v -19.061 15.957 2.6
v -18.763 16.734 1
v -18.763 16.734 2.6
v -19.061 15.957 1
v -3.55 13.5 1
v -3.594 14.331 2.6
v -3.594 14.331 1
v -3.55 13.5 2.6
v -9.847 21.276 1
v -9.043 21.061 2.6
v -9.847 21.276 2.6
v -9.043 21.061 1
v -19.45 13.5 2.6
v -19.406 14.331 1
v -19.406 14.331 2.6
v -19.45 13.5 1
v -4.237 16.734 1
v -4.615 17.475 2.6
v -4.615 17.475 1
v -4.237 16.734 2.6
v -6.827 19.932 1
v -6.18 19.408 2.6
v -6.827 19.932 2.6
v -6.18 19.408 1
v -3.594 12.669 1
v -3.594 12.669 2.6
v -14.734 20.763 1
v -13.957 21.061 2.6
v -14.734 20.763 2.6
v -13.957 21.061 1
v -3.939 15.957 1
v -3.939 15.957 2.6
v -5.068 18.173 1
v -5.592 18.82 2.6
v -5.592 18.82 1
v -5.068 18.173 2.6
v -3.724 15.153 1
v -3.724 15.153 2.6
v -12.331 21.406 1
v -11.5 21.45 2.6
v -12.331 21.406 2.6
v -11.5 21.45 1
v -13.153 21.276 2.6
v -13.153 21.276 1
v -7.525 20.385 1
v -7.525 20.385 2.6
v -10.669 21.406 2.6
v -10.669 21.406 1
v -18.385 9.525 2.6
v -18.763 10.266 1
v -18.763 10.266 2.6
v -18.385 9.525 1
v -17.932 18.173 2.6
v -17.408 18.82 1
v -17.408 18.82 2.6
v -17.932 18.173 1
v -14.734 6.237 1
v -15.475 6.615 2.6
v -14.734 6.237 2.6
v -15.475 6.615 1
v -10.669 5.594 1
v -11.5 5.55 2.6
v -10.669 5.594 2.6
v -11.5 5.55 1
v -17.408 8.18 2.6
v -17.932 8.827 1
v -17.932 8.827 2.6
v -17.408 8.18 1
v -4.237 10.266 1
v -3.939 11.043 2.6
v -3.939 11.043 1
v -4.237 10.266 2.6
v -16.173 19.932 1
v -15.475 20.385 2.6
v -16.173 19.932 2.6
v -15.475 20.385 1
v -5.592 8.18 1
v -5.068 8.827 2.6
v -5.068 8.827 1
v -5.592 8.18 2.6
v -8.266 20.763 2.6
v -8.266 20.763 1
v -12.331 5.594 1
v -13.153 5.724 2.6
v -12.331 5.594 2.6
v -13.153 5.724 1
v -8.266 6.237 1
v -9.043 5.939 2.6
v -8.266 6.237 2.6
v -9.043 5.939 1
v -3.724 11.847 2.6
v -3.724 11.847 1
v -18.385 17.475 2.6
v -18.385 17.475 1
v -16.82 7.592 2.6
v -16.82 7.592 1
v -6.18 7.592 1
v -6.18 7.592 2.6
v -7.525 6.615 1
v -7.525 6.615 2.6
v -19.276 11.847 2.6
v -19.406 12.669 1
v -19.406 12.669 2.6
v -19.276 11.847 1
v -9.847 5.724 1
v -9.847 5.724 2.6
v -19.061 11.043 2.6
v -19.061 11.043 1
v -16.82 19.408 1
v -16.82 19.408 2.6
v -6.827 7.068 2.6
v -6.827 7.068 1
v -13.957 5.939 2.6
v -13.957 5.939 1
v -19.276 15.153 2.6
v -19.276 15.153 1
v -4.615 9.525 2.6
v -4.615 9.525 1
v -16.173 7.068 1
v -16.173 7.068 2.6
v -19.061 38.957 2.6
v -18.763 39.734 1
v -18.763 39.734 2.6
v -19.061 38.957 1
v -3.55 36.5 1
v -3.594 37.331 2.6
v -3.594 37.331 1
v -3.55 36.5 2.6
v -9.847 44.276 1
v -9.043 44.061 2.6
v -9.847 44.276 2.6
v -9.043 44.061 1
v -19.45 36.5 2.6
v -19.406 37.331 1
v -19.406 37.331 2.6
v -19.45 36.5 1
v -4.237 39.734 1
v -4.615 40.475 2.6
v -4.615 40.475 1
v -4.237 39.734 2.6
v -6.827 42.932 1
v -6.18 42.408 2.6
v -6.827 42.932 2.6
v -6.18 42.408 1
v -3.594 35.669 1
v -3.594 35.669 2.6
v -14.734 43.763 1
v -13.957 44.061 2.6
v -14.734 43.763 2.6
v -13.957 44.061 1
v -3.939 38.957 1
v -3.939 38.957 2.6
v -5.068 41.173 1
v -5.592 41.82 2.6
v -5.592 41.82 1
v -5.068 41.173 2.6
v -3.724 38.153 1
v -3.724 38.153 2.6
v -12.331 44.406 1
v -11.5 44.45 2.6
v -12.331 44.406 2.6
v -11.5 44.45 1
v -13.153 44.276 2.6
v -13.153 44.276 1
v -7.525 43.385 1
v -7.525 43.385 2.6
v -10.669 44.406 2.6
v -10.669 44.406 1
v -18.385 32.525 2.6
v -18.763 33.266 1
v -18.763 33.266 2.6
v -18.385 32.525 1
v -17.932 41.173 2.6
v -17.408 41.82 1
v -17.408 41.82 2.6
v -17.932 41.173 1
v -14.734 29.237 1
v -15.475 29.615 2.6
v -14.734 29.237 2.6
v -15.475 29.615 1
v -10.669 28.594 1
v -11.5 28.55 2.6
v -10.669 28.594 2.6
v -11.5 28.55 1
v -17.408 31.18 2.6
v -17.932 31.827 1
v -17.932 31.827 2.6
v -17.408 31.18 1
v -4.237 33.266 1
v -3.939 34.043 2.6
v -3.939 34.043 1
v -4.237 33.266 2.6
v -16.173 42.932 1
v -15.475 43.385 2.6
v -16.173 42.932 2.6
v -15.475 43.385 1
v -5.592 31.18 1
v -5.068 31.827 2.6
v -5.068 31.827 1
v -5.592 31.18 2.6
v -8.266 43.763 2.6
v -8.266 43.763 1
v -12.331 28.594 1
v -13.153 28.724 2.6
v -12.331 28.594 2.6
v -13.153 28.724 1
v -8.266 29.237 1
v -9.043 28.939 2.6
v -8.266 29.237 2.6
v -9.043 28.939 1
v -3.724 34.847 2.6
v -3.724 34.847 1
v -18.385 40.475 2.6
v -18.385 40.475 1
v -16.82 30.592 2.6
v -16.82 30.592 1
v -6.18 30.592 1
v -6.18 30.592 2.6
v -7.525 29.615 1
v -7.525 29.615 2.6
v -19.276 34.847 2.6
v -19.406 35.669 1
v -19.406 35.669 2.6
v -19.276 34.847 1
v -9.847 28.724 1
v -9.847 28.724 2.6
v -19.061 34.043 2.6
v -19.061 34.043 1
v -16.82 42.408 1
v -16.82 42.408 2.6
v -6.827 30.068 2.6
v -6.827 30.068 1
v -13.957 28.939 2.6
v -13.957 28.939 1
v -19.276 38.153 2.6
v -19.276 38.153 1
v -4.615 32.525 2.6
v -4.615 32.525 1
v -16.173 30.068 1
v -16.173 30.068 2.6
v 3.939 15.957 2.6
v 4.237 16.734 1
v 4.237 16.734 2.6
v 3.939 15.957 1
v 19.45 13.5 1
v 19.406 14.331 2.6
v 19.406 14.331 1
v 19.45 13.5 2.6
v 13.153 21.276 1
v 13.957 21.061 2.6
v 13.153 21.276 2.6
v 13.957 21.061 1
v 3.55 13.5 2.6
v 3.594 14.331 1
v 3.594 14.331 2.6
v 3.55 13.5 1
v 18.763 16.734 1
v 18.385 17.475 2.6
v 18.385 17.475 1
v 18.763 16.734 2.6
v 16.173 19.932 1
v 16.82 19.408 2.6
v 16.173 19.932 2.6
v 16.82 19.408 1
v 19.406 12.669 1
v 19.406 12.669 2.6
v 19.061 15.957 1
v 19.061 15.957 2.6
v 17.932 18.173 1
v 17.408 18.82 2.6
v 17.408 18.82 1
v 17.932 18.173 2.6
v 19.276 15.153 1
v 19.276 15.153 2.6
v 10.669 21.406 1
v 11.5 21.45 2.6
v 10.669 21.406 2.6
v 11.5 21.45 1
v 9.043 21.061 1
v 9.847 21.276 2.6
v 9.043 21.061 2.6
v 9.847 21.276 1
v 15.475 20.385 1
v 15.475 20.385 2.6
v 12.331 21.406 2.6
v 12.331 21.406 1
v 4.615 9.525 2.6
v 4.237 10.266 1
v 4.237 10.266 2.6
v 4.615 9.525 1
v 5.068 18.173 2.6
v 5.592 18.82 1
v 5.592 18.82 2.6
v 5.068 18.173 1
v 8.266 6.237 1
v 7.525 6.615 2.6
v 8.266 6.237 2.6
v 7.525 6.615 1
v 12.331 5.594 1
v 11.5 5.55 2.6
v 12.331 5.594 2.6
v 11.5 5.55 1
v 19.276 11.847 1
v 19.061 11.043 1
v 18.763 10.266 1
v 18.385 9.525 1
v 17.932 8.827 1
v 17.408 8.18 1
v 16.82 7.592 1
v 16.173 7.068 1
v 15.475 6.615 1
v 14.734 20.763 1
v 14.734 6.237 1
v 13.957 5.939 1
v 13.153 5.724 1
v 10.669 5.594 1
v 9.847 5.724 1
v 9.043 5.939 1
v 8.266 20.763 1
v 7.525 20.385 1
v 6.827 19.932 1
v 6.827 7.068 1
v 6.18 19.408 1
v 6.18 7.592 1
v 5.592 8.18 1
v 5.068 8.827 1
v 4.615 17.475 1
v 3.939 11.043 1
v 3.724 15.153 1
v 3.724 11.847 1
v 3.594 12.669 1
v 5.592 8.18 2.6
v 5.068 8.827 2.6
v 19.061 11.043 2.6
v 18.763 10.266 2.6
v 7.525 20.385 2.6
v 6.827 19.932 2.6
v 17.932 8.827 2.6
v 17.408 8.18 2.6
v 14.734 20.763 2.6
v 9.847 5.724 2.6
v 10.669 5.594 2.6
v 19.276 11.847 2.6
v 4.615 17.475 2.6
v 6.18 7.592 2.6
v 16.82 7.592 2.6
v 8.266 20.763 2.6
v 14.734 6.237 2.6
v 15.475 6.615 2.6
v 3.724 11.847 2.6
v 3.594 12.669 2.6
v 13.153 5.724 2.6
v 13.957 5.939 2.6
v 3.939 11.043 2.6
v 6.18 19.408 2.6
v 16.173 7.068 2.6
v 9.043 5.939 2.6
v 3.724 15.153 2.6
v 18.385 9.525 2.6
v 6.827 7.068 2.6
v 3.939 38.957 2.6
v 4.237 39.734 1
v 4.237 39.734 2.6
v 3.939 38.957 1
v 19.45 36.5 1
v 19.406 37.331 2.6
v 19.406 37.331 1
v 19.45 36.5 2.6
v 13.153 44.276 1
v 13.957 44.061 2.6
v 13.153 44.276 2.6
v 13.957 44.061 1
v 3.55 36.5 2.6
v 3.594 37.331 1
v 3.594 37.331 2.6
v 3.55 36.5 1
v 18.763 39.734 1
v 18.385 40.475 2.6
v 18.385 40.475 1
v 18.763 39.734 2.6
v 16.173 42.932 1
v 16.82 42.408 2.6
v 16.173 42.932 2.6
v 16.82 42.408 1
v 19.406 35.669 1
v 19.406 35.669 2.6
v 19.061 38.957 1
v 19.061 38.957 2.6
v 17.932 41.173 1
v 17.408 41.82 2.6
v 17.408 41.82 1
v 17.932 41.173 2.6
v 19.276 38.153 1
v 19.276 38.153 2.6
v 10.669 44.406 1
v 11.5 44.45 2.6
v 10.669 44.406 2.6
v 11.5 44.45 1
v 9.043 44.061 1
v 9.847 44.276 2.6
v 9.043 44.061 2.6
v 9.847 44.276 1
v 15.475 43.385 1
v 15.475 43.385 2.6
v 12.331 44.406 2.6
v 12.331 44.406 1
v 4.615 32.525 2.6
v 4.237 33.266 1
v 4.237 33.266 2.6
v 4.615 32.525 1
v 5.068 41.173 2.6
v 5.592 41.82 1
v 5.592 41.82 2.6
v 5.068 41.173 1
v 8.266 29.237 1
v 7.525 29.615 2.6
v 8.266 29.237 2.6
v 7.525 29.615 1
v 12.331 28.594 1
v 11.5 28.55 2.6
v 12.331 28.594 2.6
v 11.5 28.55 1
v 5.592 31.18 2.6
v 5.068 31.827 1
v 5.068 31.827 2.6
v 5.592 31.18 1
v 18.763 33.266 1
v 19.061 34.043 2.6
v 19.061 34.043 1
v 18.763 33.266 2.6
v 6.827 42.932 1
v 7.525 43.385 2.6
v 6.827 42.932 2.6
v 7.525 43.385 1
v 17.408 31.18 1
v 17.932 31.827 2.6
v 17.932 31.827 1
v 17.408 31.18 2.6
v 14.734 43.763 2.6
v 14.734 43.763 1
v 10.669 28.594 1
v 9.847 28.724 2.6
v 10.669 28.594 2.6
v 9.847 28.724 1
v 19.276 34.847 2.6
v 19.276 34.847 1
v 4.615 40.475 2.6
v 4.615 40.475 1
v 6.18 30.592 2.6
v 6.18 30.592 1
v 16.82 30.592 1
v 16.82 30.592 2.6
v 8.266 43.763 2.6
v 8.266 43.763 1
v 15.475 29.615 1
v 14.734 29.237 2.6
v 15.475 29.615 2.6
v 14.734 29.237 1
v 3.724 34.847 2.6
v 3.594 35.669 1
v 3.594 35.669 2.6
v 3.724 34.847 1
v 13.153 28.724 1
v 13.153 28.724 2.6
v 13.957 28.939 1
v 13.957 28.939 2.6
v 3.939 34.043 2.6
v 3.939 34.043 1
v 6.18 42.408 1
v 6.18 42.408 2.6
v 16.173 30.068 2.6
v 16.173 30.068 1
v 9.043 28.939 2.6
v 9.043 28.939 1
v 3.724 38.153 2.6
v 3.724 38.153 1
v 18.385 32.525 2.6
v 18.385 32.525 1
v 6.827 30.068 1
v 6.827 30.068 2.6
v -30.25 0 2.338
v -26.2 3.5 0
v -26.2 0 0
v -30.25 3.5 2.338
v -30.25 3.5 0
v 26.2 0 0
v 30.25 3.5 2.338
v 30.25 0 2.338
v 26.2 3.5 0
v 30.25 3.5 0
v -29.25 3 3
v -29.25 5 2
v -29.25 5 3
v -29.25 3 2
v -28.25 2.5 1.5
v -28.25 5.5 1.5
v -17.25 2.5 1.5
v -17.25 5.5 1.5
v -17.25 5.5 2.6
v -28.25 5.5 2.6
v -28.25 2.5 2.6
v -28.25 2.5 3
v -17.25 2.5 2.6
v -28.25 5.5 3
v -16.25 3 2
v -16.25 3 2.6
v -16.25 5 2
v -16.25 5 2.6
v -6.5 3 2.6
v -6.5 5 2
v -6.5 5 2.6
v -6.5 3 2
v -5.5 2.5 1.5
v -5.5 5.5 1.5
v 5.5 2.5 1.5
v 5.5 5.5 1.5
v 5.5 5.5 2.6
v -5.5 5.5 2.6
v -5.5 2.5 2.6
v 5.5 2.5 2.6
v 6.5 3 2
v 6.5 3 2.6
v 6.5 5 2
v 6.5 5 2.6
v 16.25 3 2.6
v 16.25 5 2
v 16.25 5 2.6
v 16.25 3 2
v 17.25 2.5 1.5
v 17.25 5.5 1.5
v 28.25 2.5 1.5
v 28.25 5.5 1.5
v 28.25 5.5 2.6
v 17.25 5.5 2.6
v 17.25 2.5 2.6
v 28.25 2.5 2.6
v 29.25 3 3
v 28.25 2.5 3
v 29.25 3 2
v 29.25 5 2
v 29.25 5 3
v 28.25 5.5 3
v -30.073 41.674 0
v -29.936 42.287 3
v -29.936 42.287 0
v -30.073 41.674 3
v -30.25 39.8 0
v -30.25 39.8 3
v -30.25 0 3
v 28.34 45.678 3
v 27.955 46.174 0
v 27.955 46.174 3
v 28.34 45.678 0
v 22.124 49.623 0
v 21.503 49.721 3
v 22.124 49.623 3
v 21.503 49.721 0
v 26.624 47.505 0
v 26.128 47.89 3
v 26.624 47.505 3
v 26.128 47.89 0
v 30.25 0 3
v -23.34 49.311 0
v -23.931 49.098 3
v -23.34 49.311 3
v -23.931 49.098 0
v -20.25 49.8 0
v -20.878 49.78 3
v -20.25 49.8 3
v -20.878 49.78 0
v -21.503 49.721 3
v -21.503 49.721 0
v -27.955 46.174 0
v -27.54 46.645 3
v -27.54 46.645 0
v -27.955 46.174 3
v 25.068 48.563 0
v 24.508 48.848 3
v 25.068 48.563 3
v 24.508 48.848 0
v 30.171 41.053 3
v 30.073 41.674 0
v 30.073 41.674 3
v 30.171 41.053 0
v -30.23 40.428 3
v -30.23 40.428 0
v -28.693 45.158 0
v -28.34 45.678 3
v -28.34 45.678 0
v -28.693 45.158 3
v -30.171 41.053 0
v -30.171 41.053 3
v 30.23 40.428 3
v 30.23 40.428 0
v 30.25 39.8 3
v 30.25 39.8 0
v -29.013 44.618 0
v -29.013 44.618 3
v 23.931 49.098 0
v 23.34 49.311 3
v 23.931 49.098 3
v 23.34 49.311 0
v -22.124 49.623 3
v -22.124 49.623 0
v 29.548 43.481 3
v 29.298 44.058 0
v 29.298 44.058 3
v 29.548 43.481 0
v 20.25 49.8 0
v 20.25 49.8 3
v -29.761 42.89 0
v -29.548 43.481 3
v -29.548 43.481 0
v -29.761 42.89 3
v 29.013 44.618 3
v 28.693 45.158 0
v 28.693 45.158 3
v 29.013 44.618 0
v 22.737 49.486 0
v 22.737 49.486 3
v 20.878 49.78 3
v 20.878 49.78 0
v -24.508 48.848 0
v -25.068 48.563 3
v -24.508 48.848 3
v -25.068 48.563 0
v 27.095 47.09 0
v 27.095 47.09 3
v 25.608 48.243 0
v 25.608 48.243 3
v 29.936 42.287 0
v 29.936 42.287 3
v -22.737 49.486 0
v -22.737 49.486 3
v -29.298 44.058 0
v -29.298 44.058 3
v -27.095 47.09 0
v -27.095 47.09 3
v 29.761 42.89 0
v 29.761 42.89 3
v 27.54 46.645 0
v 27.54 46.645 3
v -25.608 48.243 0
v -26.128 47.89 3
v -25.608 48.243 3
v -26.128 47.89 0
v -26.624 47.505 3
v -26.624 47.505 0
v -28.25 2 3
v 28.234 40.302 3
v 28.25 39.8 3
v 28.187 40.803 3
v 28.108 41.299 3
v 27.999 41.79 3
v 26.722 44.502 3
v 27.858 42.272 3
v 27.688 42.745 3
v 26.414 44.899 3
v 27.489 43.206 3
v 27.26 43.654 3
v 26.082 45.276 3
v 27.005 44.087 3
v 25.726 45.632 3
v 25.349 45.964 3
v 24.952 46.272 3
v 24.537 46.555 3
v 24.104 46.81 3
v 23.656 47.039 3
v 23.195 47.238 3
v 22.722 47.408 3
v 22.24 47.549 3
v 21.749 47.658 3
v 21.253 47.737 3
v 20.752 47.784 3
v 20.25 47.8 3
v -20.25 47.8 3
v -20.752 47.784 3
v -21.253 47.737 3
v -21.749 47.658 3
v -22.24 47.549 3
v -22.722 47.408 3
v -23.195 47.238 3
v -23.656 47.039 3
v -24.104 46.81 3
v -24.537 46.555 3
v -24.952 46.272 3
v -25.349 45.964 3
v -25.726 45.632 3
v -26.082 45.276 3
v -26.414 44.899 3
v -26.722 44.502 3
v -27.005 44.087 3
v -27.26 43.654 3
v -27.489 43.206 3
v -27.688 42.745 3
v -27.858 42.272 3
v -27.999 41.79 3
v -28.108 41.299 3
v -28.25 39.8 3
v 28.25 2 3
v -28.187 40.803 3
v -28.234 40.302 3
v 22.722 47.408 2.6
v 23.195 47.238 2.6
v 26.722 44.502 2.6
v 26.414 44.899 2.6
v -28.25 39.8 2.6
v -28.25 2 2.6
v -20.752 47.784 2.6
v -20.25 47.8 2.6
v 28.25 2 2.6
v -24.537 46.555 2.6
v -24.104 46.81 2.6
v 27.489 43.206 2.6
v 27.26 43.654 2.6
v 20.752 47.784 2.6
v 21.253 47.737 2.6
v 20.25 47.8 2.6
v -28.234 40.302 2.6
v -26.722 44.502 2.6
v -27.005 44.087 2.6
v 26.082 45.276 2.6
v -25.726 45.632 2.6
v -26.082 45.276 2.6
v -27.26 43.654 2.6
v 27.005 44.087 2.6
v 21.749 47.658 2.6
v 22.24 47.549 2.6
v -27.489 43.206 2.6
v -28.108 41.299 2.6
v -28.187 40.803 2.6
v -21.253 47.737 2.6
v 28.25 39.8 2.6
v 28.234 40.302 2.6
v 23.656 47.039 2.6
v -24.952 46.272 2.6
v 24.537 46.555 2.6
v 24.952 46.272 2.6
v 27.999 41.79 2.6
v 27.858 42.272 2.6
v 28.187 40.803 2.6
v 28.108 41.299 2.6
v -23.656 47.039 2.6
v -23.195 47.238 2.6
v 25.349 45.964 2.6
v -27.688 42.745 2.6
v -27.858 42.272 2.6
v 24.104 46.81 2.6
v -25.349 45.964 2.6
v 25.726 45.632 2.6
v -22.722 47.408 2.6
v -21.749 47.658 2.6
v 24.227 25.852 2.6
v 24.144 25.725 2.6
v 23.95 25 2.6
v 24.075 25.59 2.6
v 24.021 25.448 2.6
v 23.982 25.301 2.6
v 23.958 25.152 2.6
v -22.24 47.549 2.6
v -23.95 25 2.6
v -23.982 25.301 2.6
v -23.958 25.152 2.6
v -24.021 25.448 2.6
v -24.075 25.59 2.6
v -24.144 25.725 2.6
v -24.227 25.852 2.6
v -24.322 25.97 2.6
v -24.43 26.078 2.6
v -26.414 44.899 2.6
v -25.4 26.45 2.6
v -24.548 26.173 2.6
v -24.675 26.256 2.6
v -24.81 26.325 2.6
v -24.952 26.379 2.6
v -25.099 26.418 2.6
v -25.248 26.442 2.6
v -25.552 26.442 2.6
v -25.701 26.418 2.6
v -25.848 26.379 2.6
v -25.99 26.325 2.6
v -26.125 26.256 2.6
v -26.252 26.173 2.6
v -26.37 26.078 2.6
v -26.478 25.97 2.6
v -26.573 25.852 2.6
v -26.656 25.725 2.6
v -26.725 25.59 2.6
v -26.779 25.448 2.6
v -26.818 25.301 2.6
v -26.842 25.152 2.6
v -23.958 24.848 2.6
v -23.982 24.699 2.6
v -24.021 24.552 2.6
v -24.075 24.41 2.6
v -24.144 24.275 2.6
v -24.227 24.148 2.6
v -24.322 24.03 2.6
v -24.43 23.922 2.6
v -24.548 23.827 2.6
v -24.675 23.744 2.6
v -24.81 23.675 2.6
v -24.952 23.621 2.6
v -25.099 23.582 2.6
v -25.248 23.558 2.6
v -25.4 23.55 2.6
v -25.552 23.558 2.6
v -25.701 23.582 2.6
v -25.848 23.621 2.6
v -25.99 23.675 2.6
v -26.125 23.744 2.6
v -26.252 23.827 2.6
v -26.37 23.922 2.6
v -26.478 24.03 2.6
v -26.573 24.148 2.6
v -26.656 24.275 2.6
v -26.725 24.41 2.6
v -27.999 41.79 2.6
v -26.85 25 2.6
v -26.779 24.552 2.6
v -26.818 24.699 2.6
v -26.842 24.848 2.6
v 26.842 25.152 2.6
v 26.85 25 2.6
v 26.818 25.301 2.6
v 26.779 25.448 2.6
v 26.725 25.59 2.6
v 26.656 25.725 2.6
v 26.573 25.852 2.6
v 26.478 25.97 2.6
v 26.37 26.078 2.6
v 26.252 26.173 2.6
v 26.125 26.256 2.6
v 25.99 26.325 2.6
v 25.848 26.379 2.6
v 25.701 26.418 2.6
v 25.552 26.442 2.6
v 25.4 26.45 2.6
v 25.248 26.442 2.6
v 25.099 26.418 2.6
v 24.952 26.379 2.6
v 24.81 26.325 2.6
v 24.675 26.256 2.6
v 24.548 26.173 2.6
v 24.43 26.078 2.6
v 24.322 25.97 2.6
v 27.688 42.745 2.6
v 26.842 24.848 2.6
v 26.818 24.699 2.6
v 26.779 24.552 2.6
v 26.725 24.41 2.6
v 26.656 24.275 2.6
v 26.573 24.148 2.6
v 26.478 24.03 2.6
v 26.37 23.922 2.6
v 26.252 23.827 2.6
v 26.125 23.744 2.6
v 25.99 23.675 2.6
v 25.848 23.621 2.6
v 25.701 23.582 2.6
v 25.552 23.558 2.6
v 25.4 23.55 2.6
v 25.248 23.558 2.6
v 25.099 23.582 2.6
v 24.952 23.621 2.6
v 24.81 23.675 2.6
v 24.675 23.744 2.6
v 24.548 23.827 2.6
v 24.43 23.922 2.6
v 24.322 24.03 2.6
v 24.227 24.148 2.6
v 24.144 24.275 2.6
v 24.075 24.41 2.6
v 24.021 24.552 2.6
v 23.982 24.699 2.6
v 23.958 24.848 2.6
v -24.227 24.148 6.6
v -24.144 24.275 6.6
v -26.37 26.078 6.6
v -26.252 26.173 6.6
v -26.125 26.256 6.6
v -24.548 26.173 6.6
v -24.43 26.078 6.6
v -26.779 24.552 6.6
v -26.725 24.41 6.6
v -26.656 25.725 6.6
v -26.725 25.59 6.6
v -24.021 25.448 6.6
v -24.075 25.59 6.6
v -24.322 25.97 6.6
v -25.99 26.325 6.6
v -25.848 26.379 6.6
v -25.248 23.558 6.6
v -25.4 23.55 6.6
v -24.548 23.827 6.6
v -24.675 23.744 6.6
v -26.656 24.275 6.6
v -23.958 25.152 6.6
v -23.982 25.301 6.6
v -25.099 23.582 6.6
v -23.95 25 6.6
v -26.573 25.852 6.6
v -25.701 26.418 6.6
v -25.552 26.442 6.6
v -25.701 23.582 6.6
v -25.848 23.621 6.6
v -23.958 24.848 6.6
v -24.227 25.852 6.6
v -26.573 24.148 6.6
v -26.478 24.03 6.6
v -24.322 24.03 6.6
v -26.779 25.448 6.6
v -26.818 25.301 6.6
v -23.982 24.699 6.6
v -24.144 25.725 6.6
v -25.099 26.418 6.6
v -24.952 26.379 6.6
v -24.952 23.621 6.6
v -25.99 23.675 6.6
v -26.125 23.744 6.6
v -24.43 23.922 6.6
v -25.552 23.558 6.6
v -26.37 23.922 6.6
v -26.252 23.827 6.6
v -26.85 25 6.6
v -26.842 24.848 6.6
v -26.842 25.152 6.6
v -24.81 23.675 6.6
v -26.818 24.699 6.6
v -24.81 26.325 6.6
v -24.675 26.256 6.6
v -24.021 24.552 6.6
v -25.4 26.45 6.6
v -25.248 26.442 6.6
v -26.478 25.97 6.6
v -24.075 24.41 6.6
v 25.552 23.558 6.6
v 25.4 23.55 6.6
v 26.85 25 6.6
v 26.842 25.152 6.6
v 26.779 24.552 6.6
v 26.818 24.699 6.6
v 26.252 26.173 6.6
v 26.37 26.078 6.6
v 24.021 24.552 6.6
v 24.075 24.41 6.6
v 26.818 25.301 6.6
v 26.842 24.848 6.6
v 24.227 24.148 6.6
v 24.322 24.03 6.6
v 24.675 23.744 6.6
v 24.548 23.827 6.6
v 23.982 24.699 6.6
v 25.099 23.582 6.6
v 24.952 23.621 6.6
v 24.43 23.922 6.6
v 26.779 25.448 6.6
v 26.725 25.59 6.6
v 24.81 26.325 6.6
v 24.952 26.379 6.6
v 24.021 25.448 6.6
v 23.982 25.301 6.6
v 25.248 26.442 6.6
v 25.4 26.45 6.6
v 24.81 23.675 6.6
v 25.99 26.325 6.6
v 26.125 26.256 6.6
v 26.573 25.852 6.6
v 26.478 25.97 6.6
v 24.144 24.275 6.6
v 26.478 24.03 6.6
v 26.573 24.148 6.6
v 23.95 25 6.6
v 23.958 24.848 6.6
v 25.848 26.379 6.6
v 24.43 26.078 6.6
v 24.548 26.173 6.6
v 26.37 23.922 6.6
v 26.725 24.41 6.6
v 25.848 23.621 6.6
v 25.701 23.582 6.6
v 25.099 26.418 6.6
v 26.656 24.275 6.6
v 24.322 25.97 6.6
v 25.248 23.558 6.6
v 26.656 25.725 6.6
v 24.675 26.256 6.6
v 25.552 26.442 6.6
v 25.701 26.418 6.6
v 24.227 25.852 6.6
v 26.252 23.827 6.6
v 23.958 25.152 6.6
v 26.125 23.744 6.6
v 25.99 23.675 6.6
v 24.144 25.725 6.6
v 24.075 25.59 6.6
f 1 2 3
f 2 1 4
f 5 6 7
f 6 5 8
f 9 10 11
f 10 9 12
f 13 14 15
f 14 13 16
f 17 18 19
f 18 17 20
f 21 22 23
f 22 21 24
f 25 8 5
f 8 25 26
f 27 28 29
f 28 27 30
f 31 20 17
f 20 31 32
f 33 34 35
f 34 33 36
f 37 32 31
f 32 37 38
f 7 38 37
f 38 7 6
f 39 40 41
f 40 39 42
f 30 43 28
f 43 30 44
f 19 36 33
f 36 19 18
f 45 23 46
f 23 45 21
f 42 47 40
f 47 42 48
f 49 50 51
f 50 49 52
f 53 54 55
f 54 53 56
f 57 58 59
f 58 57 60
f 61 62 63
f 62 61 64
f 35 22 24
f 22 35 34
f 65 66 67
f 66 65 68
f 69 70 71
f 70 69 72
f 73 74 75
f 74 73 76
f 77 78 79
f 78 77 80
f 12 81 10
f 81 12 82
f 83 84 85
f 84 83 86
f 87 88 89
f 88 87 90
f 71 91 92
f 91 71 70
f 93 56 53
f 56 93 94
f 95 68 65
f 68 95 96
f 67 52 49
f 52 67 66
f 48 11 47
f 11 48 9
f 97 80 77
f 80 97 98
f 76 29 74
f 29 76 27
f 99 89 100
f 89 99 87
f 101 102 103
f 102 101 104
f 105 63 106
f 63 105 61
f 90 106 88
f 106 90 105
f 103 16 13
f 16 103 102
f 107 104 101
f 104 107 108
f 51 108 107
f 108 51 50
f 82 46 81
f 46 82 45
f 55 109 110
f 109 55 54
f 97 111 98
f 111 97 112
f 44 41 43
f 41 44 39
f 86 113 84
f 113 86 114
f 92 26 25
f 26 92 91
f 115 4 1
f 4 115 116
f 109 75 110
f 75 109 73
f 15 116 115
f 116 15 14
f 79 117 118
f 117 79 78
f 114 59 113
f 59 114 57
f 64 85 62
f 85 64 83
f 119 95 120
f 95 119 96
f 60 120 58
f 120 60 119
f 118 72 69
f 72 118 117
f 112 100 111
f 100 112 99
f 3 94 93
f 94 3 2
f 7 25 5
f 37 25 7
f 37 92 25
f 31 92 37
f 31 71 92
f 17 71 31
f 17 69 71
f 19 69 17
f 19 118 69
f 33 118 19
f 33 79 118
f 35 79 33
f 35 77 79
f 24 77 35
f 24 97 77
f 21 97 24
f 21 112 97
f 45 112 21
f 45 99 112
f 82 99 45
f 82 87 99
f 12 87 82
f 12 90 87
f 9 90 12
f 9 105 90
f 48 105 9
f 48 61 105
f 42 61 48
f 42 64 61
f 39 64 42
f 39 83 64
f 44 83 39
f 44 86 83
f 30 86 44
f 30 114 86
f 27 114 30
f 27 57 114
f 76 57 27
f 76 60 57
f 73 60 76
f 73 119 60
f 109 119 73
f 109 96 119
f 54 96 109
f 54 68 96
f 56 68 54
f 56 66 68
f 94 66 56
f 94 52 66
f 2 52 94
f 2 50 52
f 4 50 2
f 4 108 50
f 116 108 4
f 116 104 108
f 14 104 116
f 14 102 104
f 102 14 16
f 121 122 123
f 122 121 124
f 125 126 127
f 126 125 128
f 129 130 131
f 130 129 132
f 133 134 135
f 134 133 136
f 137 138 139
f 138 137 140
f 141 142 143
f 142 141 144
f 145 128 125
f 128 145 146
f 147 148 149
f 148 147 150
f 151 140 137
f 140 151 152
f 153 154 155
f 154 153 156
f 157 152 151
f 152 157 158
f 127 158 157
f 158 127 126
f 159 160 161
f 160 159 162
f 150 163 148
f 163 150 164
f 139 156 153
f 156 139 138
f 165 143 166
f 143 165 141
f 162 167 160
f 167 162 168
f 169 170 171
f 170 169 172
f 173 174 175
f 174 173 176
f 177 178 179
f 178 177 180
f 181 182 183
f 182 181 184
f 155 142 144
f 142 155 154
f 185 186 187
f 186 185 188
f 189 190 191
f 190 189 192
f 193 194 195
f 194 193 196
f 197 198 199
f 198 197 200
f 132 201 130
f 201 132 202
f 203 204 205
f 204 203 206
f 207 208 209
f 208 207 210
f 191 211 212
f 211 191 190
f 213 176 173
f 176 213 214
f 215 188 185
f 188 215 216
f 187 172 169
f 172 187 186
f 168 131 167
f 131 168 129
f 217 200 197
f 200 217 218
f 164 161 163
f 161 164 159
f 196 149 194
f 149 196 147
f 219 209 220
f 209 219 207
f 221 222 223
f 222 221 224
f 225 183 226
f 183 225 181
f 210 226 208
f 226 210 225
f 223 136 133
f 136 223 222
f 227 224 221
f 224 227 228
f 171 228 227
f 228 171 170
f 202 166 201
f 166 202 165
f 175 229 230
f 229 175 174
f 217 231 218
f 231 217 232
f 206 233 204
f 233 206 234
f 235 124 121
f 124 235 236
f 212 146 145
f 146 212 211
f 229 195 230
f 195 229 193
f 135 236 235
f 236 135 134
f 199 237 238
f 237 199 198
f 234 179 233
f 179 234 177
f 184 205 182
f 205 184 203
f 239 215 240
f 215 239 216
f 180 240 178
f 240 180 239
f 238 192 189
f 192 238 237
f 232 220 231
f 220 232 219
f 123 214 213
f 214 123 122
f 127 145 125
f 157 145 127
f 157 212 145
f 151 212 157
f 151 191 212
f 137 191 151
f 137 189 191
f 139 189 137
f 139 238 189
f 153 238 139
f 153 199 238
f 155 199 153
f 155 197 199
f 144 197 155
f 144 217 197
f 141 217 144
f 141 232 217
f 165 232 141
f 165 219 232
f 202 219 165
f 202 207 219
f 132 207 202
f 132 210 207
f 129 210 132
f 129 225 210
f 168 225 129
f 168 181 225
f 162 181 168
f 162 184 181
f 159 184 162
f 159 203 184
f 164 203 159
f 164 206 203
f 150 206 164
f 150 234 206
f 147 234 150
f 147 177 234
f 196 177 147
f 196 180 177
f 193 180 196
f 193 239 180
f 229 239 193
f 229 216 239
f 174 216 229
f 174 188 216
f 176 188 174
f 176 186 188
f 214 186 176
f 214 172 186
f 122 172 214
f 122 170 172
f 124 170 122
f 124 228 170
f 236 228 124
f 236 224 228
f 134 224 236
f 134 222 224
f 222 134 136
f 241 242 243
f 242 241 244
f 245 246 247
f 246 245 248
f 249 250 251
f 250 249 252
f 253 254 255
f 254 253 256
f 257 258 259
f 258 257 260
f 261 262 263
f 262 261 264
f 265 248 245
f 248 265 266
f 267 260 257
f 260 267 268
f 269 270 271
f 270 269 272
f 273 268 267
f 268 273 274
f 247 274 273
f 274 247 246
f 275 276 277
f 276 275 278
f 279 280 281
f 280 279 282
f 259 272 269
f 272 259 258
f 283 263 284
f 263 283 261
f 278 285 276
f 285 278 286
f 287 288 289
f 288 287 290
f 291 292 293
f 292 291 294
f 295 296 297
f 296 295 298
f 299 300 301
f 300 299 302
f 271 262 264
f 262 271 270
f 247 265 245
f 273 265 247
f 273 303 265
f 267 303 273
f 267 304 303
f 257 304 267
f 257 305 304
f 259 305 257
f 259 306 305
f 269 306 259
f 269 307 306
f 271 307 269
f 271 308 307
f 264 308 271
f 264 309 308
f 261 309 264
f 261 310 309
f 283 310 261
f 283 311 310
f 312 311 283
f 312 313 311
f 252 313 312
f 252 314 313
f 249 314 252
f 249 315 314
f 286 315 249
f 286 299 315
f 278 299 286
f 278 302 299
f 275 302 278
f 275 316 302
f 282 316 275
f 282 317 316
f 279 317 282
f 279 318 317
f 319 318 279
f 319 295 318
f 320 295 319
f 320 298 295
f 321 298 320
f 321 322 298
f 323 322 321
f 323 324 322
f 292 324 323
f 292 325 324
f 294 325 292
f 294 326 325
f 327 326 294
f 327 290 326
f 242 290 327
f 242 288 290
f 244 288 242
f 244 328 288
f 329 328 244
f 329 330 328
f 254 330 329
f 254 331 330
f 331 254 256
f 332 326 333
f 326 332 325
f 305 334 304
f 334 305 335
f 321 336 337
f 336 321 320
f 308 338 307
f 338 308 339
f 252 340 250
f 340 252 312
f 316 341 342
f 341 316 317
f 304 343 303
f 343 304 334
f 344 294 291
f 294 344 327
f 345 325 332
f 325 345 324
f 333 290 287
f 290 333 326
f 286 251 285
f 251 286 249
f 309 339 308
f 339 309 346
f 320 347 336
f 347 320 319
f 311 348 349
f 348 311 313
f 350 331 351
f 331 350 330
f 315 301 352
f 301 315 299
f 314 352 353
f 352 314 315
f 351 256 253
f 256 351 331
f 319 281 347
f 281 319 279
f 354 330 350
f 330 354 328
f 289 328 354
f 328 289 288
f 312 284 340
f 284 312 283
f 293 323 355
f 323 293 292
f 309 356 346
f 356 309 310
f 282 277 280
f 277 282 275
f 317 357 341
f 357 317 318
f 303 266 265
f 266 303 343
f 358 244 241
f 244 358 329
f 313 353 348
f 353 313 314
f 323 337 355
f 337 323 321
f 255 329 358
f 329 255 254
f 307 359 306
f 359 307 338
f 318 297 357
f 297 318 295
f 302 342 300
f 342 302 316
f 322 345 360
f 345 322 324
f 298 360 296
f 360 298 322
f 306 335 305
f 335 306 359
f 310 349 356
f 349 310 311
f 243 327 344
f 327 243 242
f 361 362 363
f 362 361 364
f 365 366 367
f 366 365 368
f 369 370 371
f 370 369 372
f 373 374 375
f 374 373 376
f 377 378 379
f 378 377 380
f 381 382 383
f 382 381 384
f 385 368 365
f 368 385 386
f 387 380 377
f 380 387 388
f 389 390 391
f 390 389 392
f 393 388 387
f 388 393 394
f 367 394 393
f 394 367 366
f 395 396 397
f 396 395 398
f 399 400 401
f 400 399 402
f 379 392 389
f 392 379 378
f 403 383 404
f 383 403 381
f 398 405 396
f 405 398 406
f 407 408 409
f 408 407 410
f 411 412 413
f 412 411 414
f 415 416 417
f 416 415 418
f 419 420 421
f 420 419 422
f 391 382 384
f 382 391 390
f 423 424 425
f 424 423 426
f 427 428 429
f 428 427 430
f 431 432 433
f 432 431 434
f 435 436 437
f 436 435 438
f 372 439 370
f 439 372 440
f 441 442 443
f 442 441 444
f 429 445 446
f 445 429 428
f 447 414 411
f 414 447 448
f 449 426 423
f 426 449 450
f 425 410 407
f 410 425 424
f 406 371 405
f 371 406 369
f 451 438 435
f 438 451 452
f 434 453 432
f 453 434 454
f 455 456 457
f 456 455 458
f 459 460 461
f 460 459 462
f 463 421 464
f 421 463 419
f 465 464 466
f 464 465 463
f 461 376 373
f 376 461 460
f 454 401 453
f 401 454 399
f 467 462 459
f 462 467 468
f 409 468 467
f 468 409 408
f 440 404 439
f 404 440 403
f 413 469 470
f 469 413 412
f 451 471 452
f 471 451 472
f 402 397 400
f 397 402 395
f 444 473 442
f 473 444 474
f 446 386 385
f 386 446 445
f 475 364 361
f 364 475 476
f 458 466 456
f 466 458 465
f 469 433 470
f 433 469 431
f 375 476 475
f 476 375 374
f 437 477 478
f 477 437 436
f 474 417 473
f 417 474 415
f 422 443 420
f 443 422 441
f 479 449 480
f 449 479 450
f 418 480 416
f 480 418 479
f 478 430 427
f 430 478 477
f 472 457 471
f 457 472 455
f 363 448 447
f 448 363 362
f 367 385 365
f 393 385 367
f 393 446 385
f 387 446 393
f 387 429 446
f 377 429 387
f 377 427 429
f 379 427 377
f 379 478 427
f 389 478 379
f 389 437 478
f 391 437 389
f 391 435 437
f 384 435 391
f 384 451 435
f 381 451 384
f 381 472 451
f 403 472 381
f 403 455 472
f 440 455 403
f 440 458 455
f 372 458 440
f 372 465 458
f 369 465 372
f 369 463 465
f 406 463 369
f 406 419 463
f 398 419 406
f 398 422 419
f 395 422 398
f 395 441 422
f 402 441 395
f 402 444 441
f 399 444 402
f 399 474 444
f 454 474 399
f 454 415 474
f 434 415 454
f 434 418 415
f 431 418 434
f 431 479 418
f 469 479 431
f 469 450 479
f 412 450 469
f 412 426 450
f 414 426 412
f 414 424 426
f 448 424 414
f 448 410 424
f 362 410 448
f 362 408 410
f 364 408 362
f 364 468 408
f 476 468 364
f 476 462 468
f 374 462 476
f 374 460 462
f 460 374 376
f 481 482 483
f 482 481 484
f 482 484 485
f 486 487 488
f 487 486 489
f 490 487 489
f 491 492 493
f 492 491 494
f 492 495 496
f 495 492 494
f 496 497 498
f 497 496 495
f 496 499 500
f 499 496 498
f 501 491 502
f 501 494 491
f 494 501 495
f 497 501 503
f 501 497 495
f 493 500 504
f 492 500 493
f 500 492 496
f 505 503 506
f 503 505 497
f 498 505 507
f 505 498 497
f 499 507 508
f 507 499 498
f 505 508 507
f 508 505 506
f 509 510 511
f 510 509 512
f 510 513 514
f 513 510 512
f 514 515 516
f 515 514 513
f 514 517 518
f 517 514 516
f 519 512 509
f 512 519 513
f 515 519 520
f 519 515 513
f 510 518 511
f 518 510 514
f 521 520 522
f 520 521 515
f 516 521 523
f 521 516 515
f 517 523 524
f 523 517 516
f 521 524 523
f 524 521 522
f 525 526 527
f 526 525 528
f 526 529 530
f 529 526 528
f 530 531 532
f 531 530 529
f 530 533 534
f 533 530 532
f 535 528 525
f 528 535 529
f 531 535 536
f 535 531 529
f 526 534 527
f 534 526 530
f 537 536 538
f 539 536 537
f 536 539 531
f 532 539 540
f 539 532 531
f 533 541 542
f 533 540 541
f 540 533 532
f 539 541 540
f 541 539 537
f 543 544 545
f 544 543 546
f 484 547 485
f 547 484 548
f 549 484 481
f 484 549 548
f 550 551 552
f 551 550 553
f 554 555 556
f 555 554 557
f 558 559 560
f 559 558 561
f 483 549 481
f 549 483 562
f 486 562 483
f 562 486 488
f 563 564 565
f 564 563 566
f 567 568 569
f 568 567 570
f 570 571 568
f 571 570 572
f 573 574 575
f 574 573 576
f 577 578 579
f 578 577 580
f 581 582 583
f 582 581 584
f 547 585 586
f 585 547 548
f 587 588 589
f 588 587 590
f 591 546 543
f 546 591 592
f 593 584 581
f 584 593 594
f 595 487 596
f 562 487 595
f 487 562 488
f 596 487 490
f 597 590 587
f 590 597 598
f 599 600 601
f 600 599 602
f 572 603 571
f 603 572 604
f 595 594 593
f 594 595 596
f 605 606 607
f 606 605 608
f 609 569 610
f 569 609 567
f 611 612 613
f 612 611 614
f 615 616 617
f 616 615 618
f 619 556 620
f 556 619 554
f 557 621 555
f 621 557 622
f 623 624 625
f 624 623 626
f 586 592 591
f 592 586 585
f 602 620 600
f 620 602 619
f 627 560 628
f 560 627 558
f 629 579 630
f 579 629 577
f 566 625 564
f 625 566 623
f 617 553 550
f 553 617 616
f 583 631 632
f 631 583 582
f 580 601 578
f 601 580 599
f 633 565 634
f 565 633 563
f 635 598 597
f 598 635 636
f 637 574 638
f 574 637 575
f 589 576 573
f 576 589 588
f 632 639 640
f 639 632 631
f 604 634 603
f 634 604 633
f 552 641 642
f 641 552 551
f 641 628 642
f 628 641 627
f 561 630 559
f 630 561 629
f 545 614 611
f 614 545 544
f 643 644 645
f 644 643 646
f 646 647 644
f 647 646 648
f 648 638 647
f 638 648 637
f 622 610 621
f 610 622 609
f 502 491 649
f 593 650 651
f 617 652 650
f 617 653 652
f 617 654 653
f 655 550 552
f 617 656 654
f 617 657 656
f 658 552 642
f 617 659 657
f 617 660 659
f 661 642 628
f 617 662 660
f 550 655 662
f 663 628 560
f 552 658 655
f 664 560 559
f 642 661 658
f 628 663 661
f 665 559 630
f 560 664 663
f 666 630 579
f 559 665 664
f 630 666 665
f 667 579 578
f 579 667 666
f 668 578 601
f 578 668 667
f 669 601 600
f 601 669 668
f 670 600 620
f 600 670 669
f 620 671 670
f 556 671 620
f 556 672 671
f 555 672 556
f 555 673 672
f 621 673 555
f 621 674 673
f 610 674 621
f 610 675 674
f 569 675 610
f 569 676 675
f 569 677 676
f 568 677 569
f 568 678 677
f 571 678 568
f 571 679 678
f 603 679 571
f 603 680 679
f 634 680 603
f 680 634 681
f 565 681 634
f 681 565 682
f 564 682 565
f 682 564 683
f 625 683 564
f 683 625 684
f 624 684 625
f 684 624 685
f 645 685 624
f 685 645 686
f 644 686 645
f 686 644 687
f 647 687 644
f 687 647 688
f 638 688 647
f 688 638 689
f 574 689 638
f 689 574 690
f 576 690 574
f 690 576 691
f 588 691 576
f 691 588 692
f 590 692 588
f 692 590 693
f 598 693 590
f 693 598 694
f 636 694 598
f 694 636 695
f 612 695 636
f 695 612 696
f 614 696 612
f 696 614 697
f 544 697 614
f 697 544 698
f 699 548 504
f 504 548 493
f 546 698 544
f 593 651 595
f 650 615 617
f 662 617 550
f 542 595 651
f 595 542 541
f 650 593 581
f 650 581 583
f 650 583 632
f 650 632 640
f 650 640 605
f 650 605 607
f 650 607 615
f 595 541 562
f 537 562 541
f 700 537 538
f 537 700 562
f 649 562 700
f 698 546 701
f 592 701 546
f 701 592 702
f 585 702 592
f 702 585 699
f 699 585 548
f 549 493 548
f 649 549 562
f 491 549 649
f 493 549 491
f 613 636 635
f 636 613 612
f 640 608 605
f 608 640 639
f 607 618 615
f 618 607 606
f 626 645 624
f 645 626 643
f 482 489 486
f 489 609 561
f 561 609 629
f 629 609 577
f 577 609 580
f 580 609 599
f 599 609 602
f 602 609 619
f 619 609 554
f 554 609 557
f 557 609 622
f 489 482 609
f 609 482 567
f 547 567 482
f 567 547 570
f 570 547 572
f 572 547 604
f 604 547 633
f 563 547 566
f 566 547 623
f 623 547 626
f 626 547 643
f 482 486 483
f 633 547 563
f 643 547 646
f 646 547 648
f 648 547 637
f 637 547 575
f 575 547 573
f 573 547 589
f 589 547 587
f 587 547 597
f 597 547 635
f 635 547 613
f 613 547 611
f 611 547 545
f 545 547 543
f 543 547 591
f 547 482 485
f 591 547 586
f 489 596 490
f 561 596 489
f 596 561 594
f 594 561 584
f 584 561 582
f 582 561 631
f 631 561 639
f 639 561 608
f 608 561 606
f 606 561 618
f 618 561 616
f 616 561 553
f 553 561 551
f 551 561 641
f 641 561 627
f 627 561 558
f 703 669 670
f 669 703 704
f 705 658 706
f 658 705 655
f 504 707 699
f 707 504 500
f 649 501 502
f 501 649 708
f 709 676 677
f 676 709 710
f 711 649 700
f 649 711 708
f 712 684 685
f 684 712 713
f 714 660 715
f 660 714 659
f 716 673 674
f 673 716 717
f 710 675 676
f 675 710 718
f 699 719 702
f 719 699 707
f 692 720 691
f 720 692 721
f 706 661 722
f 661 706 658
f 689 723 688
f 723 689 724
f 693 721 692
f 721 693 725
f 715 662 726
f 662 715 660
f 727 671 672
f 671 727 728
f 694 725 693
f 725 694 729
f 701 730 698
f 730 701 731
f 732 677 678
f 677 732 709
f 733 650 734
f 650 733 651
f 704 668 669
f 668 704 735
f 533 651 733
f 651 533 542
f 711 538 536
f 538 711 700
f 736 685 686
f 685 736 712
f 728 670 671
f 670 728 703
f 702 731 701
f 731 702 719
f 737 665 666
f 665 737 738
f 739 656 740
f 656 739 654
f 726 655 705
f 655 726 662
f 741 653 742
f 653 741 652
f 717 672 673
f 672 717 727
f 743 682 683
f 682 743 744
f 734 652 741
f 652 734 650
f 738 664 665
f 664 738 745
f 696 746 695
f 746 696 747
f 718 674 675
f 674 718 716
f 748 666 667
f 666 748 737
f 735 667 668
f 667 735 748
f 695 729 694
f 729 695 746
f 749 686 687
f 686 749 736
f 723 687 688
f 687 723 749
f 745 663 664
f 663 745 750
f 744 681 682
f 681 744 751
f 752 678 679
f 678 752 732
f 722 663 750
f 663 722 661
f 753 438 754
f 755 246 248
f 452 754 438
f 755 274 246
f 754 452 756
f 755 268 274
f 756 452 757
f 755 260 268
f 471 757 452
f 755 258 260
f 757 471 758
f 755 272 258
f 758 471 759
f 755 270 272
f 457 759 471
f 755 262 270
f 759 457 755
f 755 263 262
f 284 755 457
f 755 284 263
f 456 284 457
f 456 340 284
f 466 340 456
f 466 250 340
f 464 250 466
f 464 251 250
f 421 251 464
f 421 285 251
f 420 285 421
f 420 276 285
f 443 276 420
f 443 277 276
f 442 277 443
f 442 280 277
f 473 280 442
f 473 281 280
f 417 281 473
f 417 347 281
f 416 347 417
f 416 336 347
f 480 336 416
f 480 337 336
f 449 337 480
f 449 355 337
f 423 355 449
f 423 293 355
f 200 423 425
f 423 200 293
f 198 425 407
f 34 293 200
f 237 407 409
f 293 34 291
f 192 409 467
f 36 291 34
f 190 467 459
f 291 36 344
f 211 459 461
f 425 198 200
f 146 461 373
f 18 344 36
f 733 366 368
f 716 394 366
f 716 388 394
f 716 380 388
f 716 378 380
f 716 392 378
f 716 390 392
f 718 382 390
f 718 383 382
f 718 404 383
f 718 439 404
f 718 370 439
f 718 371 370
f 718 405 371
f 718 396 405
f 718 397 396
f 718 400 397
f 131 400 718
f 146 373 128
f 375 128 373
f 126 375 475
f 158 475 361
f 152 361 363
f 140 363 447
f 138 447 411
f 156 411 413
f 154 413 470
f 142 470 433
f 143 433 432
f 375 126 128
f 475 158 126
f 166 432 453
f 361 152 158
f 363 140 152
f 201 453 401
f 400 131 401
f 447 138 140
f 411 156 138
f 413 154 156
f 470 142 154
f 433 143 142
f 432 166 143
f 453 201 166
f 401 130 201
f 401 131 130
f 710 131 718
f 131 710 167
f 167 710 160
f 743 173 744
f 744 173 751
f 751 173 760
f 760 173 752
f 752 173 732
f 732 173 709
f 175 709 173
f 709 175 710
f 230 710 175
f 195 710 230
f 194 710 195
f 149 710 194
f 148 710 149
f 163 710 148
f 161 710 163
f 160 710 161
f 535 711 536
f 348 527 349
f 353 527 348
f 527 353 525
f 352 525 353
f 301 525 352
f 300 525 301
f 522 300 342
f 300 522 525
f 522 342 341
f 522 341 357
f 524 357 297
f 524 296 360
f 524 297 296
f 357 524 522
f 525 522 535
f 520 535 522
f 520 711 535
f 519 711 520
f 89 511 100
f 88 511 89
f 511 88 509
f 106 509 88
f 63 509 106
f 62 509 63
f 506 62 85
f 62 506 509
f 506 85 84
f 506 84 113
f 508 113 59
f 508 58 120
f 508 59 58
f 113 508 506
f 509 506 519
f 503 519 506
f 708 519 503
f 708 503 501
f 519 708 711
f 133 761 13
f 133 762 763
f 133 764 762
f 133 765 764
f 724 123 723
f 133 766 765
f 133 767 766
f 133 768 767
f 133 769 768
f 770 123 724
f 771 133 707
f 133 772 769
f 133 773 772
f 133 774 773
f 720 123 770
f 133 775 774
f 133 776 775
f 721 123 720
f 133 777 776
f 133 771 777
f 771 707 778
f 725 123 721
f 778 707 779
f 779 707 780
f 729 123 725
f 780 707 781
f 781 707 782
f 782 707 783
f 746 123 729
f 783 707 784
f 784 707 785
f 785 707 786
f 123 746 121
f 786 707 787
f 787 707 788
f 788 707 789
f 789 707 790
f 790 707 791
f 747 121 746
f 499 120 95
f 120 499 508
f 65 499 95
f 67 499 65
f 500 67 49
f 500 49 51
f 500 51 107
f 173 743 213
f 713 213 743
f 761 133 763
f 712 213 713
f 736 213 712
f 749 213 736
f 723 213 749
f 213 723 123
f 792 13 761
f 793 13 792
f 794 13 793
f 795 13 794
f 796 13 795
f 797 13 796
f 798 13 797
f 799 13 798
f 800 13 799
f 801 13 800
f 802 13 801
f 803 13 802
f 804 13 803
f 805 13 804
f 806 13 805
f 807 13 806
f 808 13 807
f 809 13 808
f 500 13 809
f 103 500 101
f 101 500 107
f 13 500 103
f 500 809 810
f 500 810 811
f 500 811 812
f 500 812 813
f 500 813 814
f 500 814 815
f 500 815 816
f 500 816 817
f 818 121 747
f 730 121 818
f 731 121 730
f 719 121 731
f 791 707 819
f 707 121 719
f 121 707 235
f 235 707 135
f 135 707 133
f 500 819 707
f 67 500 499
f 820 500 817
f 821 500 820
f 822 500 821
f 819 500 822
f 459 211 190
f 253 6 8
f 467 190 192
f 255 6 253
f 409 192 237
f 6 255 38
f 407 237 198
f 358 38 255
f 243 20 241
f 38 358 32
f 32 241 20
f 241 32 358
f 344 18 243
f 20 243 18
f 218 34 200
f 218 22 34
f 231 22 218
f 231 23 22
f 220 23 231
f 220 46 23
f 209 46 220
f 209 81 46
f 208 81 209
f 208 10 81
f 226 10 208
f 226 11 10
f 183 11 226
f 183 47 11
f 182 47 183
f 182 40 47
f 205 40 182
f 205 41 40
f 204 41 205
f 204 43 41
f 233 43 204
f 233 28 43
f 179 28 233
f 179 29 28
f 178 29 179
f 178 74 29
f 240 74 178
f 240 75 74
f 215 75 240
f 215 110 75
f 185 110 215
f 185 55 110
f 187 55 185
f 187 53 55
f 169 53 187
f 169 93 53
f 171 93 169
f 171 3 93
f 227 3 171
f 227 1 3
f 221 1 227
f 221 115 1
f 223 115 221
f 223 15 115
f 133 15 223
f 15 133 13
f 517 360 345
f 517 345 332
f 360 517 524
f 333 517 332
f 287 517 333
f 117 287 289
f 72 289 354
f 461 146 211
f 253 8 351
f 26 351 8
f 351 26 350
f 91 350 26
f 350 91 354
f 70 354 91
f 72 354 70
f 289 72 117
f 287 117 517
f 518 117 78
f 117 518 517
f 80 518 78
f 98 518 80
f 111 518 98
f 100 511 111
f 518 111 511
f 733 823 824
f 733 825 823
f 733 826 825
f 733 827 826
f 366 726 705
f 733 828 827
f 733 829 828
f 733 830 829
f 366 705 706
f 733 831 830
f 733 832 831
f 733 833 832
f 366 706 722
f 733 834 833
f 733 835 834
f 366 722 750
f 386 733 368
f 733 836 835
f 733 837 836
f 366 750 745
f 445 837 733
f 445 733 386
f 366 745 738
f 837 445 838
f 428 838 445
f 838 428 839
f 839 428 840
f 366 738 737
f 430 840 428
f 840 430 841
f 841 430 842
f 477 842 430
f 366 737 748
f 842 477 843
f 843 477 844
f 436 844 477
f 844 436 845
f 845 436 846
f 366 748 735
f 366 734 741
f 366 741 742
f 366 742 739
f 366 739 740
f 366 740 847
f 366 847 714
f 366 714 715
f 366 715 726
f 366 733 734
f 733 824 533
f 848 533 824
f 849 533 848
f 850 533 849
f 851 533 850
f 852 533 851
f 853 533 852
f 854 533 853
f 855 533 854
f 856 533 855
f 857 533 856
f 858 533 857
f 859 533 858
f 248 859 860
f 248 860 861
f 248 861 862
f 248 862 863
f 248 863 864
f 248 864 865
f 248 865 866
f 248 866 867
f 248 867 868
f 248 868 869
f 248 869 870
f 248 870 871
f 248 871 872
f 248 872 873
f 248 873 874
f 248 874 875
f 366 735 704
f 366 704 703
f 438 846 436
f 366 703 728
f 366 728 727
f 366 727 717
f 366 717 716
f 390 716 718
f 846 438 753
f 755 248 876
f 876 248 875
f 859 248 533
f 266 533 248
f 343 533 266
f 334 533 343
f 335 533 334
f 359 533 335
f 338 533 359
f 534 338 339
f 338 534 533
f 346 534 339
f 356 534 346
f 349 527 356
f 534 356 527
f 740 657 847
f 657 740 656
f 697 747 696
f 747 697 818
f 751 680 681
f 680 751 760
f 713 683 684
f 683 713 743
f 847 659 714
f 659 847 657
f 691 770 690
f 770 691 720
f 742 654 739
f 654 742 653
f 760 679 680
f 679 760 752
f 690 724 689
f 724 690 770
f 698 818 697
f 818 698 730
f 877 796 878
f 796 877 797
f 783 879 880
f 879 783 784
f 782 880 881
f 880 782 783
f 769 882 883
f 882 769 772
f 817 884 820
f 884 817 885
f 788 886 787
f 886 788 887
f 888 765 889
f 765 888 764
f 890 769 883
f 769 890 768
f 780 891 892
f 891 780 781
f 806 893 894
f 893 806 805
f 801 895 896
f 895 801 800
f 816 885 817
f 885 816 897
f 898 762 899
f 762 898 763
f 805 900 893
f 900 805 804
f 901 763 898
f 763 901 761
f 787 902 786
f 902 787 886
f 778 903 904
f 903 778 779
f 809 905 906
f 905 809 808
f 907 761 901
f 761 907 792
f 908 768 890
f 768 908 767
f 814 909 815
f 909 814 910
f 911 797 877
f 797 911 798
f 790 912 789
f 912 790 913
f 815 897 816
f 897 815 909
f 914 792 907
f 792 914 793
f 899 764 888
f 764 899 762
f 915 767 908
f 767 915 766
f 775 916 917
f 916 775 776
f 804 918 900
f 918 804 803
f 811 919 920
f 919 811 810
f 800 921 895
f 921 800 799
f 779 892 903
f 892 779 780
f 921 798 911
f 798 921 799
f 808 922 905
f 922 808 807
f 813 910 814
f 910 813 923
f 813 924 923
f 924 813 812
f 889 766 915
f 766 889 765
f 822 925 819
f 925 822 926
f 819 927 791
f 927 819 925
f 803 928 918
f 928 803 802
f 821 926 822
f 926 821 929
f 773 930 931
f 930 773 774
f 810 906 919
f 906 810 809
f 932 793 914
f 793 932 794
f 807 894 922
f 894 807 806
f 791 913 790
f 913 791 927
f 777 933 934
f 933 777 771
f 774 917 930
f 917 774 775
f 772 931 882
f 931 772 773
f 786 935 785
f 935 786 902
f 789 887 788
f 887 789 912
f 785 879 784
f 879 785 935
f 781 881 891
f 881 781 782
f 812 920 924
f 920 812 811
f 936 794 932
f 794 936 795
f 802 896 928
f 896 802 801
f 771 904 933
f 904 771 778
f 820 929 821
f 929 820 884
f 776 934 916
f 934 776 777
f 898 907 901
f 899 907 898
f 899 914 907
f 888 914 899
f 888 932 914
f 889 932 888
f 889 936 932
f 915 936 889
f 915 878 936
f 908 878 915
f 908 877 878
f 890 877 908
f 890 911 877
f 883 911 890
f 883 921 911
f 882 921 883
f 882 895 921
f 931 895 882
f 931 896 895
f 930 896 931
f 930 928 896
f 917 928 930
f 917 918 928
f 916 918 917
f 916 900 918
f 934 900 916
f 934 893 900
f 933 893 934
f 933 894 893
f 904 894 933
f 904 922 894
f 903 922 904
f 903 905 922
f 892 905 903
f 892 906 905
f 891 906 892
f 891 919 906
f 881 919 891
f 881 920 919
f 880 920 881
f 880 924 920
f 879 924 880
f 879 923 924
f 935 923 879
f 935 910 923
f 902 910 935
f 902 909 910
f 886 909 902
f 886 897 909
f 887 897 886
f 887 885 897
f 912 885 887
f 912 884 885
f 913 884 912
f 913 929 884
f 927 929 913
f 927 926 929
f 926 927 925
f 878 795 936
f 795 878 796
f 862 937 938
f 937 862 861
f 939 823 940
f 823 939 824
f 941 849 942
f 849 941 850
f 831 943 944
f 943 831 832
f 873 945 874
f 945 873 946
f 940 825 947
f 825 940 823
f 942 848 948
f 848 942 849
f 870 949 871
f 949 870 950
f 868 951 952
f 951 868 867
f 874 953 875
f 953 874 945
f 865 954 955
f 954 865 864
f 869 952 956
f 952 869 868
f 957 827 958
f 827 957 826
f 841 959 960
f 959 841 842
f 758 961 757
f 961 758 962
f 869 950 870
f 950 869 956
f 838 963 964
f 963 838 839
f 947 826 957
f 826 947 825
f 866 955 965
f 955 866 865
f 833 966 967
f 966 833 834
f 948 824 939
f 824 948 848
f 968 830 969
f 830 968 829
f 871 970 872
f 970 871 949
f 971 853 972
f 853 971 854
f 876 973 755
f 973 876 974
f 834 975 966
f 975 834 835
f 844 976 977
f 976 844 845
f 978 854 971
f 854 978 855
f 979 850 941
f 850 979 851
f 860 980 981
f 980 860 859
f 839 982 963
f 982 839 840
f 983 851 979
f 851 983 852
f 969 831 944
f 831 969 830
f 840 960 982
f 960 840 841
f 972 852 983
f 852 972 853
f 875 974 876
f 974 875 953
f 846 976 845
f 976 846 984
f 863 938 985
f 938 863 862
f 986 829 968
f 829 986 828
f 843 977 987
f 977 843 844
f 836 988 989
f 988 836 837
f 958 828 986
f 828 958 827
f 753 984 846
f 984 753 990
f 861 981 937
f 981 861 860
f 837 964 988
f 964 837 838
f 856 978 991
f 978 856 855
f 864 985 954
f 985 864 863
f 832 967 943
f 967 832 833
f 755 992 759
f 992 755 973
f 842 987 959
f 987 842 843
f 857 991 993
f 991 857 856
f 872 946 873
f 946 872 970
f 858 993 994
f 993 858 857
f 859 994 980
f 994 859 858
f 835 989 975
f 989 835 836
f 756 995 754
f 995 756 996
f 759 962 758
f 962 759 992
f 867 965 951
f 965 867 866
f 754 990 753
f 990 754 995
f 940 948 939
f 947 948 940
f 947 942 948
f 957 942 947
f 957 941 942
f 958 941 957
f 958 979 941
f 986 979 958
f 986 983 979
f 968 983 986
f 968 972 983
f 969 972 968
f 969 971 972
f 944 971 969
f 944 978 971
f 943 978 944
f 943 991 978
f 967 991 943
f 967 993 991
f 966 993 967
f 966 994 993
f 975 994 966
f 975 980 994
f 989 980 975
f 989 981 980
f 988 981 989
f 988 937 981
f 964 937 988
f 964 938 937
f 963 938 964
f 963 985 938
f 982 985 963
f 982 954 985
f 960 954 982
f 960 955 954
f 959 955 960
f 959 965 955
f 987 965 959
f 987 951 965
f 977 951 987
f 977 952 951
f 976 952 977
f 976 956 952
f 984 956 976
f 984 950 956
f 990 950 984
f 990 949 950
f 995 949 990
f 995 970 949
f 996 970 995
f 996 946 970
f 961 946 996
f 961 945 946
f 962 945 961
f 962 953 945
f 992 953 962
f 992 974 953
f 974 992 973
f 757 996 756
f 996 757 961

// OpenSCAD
$fn=100;

base_width = 70.5;
pcb_width = 60.5;


pcb_height = 49.8;
pcb_radius = 10;

pcb_screw_dist = 10.16*6;
screw_from_side = 10.16*0.5;

flange_thickness = 4;
flange_screw_depth =  2.5;
holder_depth = 3;
flange_depth = holder_depth+8;


bat_bot_z = 13.5;
bat_dist = 23;

battery_d = 18.9-3;

mount_screw_d = 10.16*5;
mount_screw_z = 25;

M3_screw_diameter = 2.9;
M3_nut_diameter = 6.6;

text = 0;

module battery_holder(){
difference(){
union(){
    hull(){
        translate([pcb_width/2-pcb_radius, pcb_height-pcb_radius, 0])
            cylinder(r = pcb_radius, h = holder_depth);

        translate([-1*(pcb_width/2-pcb_radius), pcb_height-pcb_radius, 0])
            cylinder(r = pcb_radius, h = holder_depth);
        
        translate([-pcb_width/2, 0, 0])
            cube([pcb_width, 1, holder_depth]);
    }
    //translate([-base_width/2, 0, 0])
    //    cube([base_width, flange_thickness, flange_depth]);
}

    
    if(1) translate([0, 0, holder_depth-0.4]) hull(){
        translate([pcb_width/2-pcb_radius, pcb_height-pcb_radius, 0])
            cylinder(r = pcb_radius-2, h = holder_depth);

        translate([-1*(pcb_width/2-pcb_radius), pcb_height-pcb_radius, 0])
            cylinder(r = pcb_radius-2, h = holder_depth);
        
        translate([-pcb_width/2+2, 2, 0])
            cube([pcb_width-4, 1, holder_depth]);
    }
    
    for(x = [-pcb_screw_dist/2, pcb_screw_dist/2]) translate([x, flange_screw_depth, flange_depth-screw_from_side]) rotate([-90, 0, 0]){
              cylinder(d=M3_screw_diameter, h=20, $fn=20, center=true);
              cylinder(d = M3_nut_diameter, h = 10, $fn=6);
        }
    
    for(x=[-0.5, 0.5], y=[0, 1]) translate([bat_dist*x, bat_dist*y+bat_bot_z, holder_depth-2]) cylinder(d = battery_d, h = 2, $fn=60);
    
    
    for(x=[-1, 0, 1]) translate([x*22.75, 4, holder_depth]) hull(){
            cube([11, 3, 3], center=true);
            cube([13, 2, 2], center=true);
        }
    
    for(x=[-1, 1]) translate([x*32.2,0,0]) rotate([0, 60*x, 0]) cube([6, 7, 15], center=true);
    
    
    
    if(text){
        translate([0, 28, 0.2]) rotate([0, 180, 0]) linear_extrude(0.2) text("SOLARMINIBAT01", halign="center", size=4.5);
        translate([0, 20, 0.2]) rotate([0, 180, 0]) linear_extrude(0.2) text("www.MLAB.cz", halign="center", size=4.5);
    }
    
}

for(x=[-0.5, 0.5]) translate([mount_screw_d*x, mount_screw_z, 0]) cylinder(d = M3_screw_diameter, h = holder_depth+1.6+2, $fn=60);


}




battery_holder();
